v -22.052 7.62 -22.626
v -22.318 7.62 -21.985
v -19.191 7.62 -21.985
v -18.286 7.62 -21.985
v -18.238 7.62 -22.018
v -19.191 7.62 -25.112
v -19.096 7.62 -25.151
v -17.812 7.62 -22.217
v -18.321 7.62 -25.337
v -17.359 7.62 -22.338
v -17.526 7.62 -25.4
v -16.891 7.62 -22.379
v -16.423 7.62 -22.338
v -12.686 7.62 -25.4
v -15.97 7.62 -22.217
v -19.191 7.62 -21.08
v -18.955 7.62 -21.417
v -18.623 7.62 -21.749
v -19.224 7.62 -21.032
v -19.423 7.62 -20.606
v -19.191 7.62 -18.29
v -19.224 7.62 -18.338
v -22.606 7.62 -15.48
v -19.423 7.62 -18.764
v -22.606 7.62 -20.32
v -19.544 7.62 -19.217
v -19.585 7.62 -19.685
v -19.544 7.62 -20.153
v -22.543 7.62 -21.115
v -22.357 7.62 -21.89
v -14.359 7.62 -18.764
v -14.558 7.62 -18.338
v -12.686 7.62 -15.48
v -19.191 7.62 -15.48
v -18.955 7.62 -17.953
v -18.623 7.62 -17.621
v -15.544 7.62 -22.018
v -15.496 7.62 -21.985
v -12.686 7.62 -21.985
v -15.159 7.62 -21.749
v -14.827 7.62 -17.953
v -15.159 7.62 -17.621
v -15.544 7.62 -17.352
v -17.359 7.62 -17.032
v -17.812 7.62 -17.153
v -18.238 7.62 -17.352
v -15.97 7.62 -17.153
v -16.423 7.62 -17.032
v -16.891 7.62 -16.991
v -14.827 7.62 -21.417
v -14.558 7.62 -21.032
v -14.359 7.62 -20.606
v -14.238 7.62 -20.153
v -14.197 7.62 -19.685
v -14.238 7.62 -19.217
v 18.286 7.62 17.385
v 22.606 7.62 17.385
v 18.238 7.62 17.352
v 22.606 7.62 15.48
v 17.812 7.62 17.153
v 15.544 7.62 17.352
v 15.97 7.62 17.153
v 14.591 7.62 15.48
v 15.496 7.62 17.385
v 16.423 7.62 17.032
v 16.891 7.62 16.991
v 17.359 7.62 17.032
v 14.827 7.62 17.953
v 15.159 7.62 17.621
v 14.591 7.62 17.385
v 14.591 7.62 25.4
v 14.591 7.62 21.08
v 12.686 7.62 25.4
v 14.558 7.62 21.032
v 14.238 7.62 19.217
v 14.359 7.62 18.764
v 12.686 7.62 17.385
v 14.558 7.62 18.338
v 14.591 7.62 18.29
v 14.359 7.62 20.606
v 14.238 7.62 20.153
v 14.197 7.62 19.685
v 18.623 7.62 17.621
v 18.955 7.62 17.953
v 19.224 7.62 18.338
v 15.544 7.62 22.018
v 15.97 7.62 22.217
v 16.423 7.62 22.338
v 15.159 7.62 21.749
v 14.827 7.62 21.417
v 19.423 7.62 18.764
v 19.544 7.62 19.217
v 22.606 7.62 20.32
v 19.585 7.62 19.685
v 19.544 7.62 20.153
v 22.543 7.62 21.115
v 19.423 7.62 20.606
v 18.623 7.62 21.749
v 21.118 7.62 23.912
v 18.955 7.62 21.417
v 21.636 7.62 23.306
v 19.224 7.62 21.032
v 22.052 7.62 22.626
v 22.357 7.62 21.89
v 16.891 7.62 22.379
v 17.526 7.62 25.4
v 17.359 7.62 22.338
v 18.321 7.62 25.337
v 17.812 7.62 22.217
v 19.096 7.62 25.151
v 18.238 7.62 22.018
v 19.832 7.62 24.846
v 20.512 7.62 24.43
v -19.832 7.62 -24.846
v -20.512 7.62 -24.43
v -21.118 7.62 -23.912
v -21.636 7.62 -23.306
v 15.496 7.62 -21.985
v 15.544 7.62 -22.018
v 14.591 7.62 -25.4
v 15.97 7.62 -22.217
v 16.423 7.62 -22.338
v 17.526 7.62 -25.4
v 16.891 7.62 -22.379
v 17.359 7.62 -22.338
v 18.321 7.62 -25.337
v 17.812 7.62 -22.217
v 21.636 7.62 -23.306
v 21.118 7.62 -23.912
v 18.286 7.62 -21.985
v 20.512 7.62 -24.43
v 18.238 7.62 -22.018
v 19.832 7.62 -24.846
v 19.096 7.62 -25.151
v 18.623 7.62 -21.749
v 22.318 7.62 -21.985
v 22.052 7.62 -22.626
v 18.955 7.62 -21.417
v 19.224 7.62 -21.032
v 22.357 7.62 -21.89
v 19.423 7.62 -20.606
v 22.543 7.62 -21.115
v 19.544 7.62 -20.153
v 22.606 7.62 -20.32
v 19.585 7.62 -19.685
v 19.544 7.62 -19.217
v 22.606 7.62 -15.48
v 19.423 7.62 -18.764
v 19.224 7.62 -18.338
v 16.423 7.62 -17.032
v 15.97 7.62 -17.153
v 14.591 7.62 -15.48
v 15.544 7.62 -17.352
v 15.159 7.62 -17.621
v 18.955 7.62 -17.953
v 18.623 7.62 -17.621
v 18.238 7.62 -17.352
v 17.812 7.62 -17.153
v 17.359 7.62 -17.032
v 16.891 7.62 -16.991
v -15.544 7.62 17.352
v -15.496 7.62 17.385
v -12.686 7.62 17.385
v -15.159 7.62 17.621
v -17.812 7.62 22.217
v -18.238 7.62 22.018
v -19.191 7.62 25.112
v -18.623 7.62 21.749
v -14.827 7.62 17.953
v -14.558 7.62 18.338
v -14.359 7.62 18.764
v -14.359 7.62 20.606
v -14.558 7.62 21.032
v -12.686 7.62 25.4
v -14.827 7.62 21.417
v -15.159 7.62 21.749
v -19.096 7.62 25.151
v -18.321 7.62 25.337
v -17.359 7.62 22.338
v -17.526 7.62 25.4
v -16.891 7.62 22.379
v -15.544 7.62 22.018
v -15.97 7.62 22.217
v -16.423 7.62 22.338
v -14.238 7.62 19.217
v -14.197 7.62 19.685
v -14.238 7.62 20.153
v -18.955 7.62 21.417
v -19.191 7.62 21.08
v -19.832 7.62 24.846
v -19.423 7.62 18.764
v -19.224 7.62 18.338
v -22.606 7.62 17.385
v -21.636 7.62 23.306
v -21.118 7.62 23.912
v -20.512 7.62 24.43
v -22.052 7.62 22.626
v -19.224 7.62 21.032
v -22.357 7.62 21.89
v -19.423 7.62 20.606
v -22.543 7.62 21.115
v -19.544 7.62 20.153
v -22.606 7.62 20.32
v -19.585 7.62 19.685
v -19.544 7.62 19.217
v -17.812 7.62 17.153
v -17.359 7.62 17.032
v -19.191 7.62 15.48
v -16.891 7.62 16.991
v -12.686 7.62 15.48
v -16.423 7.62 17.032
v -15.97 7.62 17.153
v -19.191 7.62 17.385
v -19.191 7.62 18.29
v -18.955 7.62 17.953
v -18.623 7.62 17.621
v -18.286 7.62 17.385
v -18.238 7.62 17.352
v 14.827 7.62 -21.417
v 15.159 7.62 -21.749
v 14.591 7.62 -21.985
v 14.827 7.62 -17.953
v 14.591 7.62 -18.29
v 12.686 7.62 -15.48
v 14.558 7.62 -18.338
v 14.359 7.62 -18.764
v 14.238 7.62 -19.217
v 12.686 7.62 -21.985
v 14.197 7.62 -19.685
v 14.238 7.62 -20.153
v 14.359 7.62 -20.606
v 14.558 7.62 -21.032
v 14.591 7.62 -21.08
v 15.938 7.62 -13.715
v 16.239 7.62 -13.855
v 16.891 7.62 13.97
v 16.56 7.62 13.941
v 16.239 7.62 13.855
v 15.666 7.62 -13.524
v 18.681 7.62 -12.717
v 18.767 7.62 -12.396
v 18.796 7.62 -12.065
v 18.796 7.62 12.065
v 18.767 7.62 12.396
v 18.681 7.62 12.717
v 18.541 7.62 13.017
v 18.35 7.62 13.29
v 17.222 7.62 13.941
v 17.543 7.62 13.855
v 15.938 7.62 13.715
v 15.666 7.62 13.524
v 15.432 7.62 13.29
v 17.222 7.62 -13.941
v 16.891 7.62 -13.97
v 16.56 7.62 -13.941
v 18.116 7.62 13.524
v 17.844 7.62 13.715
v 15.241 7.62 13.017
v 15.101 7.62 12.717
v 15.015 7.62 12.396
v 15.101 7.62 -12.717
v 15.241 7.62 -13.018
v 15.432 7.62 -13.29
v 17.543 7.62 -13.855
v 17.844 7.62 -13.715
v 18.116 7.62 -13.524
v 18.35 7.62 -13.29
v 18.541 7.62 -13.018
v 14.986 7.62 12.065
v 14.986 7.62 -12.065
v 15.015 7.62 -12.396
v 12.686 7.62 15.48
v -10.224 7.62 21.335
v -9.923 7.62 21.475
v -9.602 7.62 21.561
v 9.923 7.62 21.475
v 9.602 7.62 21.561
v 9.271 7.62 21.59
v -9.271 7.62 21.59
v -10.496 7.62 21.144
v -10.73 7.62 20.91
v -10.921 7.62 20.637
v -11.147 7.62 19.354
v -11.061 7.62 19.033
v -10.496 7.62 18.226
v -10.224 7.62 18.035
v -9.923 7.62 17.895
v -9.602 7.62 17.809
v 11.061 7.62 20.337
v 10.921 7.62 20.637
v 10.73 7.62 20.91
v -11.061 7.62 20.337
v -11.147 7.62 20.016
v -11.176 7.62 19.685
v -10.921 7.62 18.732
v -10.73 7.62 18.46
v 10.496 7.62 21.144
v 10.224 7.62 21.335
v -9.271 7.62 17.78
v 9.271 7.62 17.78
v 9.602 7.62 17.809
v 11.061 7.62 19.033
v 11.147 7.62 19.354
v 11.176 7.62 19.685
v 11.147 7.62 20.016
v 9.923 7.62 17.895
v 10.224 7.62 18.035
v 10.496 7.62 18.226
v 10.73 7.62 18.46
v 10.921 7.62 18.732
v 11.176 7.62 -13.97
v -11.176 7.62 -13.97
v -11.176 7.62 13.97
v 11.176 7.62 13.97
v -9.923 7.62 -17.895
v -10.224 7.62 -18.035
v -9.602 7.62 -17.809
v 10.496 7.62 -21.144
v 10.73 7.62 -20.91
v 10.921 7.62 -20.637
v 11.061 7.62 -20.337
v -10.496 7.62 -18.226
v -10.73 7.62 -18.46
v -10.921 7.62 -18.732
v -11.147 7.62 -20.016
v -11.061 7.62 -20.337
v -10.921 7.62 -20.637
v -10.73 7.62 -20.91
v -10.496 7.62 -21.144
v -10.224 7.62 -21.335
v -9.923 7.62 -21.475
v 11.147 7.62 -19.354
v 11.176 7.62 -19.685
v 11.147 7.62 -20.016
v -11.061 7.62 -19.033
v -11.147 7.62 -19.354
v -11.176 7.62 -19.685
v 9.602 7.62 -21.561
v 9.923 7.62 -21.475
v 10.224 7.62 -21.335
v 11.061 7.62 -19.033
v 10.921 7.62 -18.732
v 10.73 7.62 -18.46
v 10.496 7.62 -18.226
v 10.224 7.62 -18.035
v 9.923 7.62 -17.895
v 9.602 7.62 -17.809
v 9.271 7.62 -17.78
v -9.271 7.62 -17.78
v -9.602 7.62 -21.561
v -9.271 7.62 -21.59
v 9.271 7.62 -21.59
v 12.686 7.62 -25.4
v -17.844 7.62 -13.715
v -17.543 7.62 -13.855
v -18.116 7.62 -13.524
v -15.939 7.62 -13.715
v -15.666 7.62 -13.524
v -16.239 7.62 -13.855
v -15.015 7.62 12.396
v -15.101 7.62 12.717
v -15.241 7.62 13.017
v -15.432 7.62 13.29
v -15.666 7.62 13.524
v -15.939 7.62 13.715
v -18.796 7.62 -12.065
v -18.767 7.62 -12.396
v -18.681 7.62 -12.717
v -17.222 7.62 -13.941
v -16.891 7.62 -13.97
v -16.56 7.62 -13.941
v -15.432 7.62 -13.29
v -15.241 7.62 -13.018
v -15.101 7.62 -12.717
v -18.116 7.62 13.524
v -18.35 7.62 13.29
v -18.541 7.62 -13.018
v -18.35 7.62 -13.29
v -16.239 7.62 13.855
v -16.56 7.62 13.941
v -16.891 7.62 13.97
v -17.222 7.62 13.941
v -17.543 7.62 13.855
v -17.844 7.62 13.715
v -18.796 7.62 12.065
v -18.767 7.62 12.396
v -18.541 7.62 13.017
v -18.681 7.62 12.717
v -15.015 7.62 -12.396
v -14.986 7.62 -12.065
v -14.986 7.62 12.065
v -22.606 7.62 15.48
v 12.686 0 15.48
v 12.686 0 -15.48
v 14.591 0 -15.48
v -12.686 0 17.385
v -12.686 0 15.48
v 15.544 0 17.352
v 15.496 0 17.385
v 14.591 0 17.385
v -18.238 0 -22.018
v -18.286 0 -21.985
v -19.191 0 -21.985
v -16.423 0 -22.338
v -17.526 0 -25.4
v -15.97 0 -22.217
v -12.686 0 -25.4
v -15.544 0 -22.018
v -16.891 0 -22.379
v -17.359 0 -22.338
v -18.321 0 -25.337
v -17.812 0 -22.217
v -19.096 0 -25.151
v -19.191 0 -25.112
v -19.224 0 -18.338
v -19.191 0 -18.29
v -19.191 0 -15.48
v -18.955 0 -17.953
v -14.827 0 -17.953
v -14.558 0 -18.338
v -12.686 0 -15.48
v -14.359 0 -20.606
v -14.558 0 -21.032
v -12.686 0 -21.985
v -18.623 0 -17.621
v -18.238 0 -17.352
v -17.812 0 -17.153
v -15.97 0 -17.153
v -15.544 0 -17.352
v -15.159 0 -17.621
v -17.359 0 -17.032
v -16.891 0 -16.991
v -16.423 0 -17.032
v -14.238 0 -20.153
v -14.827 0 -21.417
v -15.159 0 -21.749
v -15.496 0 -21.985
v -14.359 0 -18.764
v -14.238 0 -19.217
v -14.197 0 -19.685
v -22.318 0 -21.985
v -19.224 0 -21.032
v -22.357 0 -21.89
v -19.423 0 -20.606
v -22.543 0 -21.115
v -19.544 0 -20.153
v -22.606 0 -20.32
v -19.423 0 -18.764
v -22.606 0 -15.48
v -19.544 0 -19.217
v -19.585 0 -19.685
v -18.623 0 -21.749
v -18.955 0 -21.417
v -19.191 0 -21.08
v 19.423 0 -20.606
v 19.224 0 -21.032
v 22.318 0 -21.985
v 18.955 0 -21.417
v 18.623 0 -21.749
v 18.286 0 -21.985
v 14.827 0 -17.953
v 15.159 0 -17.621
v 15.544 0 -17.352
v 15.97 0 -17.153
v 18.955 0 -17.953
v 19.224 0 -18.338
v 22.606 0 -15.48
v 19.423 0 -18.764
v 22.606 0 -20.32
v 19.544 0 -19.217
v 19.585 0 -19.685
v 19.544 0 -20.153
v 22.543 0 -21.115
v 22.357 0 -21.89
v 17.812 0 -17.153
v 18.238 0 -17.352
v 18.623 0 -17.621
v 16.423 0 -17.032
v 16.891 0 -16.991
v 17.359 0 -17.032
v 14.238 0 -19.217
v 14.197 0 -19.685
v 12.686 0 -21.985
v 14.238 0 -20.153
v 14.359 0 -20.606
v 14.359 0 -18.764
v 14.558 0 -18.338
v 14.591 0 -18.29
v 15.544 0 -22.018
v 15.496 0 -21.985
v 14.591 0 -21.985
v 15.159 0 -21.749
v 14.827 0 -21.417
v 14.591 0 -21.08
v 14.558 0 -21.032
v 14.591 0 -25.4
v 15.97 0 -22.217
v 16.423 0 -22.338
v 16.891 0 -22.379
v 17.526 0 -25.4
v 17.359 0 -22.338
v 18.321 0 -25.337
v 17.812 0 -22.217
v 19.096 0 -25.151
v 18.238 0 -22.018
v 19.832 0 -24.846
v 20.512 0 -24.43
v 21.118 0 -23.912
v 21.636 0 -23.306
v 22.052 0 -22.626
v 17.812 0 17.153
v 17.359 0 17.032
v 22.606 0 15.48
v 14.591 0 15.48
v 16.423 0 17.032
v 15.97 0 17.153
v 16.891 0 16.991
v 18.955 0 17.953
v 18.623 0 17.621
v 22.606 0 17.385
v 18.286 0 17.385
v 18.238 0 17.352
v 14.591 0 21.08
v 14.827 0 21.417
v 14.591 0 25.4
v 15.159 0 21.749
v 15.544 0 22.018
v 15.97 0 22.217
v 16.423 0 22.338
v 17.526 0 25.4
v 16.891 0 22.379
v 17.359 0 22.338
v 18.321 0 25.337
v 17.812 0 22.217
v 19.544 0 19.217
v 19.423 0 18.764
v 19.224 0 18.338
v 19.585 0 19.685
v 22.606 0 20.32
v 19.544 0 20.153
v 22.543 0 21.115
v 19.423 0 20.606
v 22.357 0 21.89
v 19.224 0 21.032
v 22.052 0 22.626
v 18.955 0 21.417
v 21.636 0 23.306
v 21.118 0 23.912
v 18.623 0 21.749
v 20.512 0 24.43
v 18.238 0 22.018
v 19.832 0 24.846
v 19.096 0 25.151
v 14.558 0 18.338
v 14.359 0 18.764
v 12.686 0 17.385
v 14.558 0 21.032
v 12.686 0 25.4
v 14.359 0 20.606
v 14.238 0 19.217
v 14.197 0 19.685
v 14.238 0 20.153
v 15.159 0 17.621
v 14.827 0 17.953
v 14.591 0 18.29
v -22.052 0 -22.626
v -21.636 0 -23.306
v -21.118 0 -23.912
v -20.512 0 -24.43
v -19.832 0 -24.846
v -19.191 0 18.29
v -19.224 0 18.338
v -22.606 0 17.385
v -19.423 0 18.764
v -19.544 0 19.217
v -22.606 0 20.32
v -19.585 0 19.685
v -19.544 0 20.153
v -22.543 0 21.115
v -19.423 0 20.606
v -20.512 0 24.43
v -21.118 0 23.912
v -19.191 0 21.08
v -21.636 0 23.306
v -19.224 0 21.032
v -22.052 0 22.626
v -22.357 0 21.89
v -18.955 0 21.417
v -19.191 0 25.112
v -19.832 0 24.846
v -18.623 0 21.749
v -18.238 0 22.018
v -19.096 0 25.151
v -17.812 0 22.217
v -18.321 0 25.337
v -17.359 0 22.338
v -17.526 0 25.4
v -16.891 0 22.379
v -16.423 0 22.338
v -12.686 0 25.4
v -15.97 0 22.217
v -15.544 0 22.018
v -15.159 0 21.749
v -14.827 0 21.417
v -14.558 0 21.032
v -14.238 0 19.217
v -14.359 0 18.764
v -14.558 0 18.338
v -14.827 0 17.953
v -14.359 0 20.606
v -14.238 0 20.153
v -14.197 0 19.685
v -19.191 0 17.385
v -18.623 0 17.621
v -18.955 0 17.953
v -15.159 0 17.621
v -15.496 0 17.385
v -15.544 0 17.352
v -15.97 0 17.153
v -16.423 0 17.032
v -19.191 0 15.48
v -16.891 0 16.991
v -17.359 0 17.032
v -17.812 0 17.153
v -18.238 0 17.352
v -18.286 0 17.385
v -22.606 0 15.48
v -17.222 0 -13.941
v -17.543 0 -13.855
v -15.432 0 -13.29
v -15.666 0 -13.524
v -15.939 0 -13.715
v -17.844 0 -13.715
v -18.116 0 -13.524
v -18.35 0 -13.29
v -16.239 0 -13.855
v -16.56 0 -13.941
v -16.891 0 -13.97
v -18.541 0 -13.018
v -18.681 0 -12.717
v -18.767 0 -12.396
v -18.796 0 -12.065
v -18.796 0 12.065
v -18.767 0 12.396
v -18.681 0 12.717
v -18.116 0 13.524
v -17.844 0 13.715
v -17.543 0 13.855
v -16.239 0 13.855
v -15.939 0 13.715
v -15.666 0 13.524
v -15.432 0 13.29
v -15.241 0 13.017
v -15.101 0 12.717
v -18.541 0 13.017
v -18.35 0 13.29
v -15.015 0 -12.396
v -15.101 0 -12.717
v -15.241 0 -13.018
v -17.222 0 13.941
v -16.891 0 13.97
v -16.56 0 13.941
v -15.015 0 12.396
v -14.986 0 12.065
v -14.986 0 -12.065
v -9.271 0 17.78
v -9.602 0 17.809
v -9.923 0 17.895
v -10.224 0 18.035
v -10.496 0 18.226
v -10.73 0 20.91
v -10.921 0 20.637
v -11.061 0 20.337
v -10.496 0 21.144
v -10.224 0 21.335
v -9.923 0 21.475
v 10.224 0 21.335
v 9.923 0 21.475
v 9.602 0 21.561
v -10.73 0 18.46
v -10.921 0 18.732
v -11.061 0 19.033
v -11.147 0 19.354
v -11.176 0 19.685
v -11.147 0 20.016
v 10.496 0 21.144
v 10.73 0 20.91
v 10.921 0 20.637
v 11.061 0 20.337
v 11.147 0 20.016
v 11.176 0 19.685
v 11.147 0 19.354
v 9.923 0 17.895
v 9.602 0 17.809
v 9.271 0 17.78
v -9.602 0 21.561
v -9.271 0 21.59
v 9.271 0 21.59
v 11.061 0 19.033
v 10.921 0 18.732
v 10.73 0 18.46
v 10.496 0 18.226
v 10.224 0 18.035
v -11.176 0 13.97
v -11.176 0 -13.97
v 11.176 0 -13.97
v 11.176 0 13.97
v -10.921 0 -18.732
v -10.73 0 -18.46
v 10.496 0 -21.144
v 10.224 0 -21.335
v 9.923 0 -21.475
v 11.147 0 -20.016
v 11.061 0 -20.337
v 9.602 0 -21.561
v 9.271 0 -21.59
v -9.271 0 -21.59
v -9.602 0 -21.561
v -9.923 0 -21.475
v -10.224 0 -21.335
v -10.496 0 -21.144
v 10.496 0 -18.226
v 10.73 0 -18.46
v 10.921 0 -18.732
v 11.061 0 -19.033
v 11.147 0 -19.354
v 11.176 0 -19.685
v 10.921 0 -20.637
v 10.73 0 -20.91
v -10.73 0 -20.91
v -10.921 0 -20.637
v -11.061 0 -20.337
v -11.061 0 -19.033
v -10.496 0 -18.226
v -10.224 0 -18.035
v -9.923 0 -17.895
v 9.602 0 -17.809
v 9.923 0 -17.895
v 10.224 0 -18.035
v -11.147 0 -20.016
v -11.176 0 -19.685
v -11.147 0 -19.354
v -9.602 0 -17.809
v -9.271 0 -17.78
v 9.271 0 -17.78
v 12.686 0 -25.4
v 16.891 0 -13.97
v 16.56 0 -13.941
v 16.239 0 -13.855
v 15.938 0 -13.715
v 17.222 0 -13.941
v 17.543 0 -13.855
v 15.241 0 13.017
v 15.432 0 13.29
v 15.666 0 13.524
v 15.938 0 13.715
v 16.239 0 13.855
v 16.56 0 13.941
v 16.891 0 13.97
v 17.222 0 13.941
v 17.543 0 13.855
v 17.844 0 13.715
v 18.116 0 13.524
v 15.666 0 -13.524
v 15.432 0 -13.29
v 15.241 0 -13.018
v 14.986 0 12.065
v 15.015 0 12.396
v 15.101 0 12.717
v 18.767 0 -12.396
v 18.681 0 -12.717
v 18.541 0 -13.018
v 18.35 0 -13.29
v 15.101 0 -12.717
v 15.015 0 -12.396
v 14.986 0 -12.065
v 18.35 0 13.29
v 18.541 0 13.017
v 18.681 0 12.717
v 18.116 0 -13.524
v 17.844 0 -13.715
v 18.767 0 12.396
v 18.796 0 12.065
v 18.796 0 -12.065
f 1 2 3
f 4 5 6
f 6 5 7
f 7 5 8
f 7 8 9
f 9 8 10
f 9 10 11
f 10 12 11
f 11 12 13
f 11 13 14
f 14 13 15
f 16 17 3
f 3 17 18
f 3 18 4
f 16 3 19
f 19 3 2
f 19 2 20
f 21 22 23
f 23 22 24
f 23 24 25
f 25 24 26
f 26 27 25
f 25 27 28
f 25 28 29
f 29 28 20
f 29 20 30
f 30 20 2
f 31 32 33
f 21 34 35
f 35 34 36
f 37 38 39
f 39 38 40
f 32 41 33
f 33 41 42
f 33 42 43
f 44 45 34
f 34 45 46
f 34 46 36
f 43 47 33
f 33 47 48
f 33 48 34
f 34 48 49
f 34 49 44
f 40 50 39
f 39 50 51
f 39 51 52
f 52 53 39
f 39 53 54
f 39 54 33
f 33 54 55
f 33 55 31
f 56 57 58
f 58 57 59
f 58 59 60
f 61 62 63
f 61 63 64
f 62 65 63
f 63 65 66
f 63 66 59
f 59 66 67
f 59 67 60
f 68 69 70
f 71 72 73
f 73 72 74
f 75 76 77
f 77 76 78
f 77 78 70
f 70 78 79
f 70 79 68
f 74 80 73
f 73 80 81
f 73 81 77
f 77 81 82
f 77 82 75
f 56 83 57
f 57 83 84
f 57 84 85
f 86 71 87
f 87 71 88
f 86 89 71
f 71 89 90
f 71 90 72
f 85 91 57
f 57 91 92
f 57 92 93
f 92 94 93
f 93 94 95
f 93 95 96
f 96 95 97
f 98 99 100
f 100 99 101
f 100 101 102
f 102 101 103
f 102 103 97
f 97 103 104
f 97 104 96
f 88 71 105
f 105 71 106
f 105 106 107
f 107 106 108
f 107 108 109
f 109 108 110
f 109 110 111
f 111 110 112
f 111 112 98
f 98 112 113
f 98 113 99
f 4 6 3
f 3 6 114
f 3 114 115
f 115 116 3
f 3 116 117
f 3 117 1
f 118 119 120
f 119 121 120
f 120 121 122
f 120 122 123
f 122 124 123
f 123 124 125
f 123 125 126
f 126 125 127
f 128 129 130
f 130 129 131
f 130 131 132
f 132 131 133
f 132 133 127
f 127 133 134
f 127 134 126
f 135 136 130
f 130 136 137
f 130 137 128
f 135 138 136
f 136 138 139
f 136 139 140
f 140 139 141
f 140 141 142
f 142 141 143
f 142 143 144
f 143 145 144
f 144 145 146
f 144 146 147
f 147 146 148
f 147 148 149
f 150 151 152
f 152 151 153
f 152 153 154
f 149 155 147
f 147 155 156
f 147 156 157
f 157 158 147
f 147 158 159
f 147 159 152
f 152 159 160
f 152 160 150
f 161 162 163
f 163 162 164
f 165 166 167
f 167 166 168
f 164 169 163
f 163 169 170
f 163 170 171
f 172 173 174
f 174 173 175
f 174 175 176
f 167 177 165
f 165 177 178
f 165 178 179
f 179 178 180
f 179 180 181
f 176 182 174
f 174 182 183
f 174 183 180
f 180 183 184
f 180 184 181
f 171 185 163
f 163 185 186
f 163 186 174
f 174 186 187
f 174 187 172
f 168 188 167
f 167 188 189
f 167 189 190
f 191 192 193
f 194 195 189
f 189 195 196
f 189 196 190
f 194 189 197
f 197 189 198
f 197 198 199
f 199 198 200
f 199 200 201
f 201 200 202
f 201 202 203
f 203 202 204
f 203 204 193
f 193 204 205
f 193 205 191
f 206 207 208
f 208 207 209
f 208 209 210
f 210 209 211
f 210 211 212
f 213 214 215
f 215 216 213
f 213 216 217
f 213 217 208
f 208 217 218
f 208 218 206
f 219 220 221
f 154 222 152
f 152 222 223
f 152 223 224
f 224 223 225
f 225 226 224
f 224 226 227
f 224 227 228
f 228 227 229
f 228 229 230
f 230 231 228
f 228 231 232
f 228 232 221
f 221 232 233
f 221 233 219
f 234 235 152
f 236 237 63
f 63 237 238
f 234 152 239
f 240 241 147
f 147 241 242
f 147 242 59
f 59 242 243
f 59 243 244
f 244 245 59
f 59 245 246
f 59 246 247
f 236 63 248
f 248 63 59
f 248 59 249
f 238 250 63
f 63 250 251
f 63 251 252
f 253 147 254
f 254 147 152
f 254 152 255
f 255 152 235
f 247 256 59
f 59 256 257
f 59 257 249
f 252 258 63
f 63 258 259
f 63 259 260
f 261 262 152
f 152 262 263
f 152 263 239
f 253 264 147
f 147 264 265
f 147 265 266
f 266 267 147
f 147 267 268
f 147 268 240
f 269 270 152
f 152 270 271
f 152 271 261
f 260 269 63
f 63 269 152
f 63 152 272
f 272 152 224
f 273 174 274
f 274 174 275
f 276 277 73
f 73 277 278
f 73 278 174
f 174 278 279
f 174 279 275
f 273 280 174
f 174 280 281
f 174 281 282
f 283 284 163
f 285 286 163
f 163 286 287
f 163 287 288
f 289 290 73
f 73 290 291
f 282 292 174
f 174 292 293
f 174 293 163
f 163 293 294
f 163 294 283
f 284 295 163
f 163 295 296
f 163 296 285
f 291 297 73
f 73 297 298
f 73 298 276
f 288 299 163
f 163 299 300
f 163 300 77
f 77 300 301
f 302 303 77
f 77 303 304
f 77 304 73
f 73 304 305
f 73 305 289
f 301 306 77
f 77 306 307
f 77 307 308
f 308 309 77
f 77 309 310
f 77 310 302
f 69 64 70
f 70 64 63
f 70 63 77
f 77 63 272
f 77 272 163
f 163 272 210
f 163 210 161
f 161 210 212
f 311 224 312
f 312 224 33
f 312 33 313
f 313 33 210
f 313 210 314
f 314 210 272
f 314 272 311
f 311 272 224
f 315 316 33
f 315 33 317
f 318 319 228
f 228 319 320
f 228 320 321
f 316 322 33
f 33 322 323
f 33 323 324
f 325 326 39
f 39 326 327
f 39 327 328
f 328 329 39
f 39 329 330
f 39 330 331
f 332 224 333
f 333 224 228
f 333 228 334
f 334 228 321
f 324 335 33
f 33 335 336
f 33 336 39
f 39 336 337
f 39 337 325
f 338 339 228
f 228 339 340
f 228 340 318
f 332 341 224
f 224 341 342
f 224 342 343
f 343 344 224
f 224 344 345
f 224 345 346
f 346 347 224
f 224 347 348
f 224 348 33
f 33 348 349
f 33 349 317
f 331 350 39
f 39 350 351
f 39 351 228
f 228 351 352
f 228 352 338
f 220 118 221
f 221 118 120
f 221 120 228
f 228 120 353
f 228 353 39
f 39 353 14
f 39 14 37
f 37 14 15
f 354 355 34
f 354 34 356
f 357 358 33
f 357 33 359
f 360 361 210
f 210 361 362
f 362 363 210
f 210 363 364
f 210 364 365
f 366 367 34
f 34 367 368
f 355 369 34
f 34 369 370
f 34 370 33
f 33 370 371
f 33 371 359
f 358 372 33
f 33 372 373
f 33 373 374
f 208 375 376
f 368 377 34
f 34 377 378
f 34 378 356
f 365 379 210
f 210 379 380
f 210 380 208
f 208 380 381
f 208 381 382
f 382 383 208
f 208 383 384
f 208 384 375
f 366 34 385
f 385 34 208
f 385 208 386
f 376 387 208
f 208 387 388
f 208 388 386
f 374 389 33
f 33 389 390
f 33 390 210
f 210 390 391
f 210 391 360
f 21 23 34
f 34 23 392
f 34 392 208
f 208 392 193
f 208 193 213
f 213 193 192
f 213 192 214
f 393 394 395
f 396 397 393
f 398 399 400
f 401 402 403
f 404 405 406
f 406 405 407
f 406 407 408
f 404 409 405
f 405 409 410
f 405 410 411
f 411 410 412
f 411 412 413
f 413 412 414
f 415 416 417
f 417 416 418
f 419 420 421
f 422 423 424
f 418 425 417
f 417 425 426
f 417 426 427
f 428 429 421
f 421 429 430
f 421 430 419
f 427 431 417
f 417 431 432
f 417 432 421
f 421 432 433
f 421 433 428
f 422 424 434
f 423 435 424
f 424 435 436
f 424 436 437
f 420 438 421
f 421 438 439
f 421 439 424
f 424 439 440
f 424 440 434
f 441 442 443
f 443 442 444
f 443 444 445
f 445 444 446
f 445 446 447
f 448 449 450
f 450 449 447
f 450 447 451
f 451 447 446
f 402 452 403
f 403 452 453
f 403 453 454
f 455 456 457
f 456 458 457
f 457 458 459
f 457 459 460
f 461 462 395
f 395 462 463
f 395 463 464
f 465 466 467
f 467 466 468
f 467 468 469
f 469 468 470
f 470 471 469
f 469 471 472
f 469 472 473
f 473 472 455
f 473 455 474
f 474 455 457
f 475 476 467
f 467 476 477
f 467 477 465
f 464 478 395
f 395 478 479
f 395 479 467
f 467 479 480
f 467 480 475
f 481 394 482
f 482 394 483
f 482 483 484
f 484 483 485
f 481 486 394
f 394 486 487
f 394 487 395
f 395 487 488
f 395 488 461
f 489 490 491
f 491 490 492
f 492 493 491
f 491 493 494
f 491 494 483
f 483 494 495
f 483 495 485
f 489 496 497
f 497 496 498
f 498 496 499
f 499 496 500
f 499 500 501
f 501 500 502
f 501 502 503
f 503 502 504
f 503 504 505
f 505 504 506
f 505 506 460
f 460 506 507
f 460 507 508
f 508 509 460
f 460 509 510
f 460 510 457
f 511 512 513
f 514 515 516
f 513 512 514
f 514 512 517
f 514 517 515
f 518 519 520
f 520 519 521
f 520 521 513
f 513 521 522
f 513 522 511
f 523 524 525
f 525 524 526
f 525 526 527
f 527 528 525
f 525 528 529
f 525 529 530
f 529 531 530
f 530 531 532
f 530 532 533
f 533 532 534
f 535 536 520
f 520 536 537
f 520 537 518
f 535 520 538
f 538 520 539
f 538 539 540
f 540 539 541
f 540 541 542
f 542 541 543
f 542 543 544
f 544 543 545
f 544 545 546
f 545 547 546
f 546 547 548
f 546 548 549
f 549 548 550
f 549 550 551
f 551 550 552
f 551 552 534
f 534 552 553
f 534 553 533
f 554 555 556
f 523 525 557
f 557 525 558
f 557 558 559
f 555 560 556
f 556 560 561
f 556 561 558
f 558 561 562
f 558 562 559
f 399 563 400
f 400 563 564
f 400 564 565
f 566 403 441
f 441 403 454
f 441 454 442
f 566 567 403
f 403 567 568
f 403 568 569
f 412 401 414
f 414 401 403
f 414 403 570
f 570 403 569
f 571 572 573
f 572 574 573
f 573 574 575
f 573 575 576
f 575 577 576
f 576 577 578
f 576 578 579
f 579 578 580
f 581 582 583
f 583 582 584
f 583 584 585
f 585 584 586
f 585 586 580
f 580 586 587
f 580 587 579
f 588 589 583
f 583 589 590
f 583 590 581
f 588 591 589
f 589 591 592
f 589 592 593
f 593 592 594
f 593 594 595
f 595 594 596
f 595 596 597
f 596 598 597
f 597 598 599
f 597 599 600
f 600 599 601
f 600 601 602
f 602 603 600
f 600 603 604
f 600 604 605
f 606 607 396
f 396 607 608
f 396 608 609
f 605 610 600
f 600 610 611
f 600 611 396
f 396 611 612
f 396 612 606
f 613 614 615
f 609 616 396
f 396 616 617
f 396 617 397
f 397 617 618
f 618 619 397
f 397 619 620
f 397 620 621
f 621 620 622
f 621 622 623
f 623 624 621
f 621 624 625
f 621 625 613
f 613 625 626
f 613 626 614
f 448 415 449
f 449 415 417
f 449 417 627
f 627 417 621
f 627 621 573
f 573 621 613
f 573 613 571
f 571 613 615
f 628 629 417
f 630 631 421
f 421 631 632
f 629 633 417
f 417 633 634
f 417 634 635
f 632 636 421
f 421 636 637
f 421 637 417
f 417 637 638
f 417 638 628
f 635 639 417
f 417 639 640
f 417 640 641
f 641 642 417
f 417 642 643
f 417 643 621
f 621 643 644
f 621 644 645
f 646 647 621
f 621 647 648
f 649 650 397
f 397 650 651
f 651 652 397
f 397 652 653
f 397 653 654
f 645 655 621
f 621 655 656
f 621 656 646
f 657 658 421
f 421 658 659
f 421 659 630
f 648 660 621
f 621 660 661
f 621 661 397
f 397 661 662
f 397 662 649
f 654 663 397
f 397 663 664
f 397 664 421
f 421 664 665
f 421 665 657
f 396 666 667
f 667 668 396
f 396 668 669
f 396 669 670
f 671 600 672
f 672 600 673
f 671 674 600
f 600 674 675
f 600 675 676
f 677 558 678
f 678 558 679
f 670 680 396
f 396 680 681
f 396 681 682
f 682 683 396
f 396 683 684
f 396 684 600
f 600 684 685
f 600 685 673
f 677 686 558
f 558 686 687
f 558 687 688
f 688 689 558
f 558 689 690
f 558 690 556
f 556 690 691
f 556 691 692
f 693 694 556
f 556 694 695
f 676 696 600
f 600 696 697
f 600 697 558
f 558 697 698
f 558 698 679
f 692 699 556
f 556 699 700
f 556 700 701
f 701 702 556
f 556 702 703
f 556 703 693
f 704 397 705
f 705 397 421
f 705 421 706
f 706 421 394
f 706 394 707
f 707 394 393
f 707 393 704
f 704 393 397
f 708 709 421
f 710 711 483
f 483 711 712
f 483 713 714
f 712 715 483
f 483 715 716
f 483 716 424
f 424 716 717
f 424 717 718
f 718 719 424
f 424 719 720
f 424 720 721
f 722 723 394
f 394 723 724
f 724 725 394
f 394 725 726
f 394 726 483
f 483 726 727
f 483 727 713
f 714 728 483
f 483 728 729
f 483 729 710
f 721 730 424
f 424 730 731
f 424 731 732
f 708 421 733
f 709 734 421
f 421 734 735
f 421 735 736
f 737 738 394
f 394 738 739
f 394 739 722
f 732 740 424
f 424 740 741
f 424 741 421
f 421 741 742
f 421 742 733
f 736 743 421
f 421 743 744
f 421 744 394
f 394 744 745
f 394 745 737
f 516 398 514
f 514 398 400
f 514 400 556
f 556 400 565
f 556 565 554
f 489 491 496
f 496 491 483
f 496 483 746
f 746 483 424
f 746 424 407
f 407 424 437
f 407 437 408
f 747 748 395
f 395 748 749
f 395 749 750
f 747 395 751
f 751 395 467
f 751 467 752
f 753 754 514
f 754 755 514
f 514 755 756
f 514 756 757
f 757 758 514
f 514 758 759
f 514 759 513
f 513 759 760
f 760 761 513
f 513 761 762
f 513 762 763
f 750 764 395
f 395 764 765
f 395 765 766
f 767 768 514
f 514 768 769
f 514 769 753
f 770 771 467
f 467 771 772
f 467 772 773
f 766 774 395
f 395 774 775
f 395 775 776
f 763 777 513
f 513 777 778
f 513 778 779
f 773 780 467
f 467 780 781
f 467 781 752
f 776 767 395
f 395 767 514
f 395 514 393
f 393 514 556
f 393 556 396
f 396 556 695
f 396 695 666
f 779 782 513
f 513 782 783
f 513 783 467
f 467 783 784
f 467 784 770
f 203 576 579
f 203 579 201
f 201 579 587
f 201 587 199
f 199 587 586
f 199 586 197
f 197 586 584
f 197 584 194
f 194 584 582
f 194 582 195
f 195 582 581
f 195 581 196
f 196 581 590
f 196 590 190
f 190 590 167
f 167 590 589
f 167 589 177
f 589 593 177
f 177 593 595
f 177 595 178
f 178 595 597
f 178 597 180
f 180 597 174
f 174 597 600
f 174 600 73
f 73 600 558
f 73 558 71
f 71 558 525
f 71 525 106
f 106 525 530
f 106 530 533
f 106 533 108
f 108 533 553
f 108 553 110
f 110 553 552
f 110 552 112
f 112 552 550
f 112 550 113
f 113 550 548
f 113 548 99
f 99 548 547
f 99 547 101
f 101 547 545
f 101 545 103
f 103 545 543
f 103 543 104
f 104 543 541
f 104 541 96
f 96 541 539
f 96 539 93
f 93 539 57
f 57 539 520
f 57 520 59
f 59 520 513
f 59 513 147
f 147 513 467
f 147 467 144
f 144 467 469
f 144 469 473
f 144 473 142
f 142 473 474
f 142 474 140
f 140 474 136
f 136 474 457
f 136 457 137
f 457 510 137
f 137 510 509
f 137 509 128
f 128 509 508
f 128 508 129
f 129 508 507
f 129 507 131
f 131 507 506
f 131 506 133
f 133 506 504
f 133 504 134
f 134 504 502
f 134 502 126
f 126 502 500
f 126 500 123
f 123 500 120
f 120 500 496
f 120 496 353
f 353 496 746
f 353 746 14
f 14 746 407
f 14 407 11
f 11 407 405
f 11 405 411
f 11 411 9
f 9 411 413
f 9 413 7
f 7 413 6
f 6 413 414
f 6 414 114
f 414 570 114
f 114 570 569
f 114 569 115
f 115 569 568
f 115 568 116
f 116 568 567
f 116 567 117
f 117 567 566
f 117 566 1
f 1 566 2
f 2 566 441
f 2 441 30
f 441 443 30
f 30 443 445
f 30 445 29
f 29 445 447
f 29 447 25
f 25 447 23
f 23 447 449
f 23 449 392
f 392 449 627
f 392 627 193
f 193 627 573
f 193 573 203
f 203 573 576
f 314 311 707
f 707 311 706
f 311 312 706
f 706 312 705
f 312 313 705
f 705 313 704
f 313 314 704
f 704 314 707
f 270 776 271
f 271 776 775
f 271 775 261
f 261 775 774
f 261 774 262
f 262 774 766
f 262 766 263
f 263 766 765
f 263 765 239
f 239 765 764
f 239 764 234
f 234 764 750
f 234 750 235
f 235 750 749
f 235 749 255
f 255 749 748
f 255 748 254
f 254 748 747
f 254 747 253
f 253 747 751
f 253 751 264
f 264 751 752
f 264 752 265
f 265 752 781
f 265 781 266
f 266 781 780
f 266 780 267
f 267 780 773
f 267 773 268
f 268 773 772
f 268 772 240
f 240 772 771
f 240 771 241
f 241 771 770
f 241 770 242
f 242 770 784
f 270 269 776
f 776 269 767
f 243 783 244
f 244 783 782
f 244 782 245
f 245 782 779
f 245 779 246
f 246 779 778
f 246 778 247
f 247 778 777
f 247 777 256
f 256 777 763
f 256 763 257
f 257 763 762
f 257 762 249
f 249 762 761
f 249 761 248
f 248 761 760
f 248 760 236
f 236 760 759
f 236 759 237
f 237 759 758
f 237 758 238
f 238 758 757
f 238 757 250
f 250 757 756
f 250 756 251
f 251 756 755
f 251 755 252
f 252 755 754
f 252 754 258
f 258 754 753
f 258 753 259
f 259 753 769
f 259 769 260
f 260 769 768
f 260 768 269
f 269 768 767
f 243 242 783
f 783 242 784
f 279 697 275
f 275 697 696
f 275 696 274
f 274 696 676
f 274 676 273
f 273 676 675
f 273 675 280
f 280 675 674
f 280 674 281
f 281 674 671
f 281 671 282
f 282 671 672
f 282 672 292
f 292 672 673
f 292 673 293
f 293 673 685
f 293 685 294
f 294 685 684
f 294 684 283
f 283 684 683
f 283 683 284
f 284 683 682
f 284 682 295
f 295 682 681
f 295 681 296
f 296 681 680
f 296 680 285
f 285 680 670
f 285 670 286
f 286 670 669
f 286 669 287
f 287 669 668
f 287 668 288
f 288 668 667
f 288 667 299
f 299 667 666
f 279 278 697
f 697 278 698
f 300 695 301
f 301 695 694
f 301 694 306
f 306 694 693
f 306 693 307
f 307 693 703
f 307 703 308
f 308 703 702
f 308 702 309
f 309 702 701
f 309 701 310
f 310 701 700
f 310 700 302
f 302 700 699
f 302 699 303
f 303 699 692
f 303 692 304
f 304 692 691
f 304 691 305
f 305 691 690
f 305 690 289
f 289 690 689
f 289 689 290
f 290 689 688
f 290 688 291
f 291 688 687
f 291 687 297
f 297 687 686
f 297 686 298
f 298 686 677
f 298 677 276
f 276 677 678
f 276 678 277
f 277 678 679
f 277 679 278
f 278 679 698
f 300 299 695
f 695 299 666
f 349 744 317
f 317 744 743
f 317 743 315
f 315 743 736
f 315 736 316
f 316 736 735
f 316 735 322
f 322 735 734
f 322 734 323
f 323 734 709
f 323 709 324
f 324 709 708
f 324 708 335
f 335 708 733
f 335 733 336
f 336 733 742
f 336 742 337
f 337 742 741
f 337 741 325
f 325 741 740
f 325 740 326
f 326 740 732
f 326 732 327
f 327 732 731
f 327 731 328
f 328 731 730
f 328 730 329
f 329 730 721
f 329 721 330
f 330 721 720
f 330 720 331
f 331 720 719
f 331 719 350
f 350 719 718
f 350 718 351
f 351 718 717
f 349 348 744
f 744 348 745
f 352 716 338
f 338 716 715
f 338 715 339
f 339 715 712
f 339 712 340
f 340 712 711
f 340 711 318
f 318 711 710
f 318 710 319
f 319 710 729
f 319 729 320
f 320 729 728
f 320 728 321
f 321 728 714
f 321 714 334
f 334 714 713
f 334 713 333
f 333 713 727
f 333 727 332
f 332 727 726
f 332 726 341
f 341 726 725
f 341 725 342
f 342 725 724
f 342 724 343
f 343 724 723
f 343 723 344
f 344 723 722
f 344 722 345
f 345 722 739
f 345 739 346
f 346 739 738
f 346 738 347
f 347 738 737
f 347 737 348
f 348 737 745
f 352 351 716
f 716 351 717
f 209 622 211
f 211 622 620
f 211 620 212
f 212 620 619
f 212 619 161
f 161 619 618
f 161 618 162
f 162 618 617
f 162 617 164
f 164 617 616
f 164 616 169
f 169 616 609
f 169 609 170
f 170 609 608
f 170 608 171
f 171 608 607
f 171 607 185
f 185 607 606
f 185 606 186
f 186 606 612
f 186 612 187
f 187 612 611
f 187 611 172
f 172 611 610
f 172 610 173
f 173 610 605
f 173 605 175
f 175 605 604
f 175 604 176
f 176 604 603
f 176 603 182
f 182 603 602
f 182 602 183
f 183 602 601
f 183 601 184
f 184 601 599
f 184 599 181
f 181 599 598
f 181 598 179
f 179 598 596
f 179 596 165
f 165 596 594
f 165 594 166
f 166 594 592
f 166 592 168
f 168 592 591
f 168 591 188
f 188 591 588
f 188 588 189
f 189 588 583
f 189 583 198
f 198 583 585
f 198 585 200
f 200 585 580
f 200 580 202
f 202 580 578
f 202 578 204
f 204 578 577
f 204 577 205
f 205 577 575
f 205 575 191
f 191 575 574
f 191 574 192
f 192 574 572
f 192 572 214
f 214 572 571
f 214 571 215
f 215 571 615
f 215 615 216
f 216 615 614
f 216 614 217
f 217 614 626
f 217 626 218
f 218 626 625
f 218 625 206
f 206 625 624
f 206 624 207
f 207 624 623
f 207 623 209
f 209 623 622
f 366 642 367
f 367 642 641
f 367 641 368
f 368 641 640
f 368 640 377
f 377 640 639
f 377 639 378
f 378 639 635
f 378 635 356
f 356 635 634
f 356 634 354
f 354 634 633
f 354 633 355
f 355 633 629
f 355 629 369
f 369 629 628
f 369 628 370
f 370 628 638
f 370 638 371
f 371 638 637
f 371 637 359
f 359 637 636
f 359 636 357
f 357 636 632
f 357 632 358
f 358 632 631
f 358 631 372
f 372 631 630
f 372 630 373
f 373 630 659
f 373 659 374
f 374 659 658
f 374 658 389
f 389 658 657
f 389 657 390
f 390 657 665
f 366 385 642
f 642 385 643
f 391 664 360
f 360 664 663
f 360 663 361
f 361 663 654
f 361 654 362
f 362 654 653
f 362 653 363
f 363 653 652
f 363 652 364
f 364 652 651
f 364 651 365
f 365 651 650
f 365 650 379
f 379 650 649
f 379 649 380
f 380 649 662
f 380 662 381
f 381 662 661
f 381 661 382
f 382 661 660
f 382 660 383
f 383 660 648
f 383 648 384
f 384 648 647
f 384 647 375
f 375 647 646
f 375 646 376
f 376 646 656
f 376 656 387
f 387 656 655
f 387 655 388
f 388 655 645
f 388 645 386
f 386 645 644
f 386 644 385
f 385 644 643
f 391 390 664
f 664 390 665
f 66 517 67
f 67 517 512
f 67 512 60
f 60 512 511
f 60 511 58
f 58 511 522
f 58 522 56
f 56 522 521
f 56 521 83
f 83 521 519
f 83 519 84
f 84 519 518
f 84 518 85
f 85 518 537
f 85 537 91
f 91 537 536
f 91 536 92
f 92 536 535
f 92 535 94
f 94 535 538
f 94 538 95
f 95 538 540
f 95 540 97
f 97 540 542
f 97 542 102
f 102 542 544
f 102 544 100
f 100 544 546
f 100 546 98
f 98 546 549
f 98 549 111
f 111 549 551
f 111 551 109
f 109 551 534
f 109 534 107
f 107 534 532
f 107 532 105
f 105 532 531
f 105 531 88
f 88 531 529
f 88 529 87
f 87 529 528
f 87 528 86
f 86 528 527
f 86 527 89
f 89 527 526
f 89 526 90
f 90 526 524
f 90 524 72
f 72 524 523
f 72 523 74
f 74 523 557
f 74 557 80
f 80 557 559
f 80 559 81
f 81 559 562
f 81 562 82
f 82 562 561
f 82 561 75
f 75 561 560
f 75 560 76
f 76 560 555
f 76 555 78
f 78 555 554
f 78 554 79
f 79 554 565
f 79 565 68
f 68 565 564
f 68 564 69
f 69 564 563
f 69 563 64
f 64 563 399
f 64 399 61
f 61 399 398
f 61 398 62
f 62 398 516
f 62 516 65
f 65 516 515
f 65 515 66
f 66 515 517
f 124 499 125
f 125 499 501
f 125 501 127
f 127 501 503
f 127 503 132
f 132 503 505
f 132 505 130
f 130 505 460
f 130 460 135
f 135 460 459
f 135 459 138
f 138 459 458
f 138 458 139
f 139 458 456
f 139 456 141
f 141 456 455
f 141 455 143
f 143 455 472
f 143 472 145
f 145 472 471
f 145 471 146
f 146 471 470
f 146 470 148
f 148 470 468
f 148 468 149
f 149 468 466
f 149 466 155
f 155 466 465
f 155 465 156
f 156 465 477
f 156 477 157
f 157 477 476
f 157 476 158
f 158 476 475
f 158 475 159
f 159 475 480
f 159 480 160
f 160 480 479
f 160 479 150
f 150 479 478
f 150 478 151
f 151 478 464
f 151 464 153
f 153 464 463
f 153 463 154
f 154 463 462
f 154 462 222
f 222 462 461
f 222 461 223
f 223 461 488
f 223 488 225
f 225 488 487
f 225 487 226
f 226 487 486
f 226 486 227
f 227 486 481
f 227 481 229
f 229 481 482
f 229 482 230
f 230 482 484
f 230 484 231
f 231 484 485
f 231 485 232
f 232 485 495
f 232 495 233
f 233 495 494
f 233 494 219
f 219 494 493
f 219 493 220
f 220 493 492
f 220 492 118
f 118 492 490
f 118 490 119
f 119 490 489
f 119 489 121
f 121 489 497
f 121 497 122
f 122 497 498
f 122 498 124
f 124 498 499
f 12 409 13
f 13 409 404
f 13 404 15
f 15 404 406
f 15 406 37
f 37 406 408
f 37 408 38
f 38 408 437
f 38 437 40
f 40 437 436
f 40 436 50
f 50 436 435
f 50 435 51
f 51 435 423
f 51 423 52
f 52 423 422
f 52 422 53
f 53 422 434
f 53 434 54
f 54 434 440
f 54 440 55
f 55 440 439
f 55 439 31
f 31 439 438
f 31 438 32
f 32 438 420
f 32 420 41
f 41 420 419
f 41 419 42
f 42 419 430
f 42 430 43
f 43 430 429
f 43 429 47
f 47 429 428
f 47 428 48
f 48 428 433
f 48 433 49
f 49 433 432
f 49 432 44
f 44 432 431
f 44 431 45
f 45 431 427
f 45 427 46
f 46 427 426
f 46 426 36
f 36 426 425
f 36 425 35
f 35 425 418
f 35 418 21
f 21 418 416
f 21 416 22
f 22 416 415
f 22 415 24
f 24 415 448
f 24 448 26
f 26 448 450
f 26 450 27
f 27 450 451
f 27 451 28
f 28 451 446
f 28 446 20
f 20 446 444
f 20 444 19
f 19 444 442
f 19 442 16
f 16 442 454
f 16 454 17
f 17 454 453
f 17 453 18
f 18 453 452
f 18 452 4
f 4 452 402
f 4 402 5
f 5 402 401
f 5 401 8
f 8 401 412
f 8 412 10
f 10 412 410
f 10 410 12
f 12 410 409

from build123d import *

# Parameters (mm, degrees)
SKETCH1_R           = 2.694076836
SKETCH1_W           = 22.352
SKETCH1_H           = 27.94
BOSS_EXTRUDE1_DEPTH = 7.62


with BuildPart() as part:
    # Sketch1 → Boss-Extrude1 (new body)
    with BuildSketch(Plane(origin=(0, 0, 0), x_dir=(1, 0, 0), z_dir=(0, 1, 0))):
        with BuildLine():
            Line((-22.606, -20.32), (-22.606, 20.32))
            ThreePointArc((-22.606, 20.32), (-21.118102448, 23.912102448), (-17.526, 25.4))
            Line((-17.526, 25.4), (17.526, 25.4))
            ThreePointArc((17.526, 25.4), (21.118102448, 23.912102448), (22.606, 20.32))
            Line((22.606, 20.32), (22.606, -20.32))
            ThreePointArc((22.606, -20.32), (21.118102448, -23.912102448), (17.526, -25.4))
            Line((17.526, -25.4), (-17.526, -25.4))
            ThreePointArc((-17.526, -25.4), (-21.118102448, -23.912102448), (-22.606, -20.32))
        make_face()
        with Locations((16.891, 19.685)):
            Circle(SKETCH1_R, mode=Mode.SUBTRACT)
        with Locations((16.891, -19.685)):
            Circle(SKETCH1_R, mode=Mode.SUBTRACT)
        with Locations((-16.891, -19.685)):
            Circle(SKETCH1_R, mode=Mode.SUBTRACT)
        with Locations((-16.891, 19.685)):
            Circle(SKETCH1_R, mode=Mode.SUBTRACT)
        Rectangle(SKETCH1_W, SKETCH1_H, mode=Mode.SUBTRACT)
        with BuildLine():
            Line((18.796, 12.065), (18.796, -12.065))
            ThreePointArc((18.796, -12.065), (16.891, -13.97), (14.986, -12.065))
            Line((14.986, -12.065), (14.986, 12.065))
            ThreePointArc((14.986, 12.065), (16.891, 13.97), (18.796, 12.065))
        make_face(mode=Mode.SUBTRACT)
        with BuildLine():
            Line((-9.271, -17.78), (9.271, -17.78))
            ThreePointArc((9.271, -17.78), (11.176, -19.685), (9.271, -21.59))
            Line((9.271, -21.59), (-9.271, -21.59))
            ThreePointArc((-9.271, -21.59), (-11.176, -19.685), (-9.271, -17.78))
        make_face(mode=Mode.SUBTRACT)
        with BuildLine():
            Line((-9.271, 17.78), (9.271, 17.78))
            ThreePointArc((9.271, 17.78), (11.176, 19.685), (9.271, 21.59))
            Line((9.271, 21.59), (-9.271, 21.59))
            ThreePointArc((-9.271, 21.59), (-11.176, 19.685), (-9.271, 17.78))
        make_face(mode=Mode.SUBTRACT)
        with BuildLine():
            Line((-18.796, 12.065), (-18.796, -12.065))
            ThreePointArc((-18.796, -12.065), (-16.891, -13.97), (-14.986, -12.065))
            Line((-14.986, -12.065), (-14.986, 12.065))
            ThreePointArc((-14.986, 12.065), (-16.891, 13.97), (-18.796, 12.065))
        make_face(mode=Mode.SUBTRACT)
    extrude(amount=BOSS_EXTRUDE1_DEPTH)


solid = part.part
